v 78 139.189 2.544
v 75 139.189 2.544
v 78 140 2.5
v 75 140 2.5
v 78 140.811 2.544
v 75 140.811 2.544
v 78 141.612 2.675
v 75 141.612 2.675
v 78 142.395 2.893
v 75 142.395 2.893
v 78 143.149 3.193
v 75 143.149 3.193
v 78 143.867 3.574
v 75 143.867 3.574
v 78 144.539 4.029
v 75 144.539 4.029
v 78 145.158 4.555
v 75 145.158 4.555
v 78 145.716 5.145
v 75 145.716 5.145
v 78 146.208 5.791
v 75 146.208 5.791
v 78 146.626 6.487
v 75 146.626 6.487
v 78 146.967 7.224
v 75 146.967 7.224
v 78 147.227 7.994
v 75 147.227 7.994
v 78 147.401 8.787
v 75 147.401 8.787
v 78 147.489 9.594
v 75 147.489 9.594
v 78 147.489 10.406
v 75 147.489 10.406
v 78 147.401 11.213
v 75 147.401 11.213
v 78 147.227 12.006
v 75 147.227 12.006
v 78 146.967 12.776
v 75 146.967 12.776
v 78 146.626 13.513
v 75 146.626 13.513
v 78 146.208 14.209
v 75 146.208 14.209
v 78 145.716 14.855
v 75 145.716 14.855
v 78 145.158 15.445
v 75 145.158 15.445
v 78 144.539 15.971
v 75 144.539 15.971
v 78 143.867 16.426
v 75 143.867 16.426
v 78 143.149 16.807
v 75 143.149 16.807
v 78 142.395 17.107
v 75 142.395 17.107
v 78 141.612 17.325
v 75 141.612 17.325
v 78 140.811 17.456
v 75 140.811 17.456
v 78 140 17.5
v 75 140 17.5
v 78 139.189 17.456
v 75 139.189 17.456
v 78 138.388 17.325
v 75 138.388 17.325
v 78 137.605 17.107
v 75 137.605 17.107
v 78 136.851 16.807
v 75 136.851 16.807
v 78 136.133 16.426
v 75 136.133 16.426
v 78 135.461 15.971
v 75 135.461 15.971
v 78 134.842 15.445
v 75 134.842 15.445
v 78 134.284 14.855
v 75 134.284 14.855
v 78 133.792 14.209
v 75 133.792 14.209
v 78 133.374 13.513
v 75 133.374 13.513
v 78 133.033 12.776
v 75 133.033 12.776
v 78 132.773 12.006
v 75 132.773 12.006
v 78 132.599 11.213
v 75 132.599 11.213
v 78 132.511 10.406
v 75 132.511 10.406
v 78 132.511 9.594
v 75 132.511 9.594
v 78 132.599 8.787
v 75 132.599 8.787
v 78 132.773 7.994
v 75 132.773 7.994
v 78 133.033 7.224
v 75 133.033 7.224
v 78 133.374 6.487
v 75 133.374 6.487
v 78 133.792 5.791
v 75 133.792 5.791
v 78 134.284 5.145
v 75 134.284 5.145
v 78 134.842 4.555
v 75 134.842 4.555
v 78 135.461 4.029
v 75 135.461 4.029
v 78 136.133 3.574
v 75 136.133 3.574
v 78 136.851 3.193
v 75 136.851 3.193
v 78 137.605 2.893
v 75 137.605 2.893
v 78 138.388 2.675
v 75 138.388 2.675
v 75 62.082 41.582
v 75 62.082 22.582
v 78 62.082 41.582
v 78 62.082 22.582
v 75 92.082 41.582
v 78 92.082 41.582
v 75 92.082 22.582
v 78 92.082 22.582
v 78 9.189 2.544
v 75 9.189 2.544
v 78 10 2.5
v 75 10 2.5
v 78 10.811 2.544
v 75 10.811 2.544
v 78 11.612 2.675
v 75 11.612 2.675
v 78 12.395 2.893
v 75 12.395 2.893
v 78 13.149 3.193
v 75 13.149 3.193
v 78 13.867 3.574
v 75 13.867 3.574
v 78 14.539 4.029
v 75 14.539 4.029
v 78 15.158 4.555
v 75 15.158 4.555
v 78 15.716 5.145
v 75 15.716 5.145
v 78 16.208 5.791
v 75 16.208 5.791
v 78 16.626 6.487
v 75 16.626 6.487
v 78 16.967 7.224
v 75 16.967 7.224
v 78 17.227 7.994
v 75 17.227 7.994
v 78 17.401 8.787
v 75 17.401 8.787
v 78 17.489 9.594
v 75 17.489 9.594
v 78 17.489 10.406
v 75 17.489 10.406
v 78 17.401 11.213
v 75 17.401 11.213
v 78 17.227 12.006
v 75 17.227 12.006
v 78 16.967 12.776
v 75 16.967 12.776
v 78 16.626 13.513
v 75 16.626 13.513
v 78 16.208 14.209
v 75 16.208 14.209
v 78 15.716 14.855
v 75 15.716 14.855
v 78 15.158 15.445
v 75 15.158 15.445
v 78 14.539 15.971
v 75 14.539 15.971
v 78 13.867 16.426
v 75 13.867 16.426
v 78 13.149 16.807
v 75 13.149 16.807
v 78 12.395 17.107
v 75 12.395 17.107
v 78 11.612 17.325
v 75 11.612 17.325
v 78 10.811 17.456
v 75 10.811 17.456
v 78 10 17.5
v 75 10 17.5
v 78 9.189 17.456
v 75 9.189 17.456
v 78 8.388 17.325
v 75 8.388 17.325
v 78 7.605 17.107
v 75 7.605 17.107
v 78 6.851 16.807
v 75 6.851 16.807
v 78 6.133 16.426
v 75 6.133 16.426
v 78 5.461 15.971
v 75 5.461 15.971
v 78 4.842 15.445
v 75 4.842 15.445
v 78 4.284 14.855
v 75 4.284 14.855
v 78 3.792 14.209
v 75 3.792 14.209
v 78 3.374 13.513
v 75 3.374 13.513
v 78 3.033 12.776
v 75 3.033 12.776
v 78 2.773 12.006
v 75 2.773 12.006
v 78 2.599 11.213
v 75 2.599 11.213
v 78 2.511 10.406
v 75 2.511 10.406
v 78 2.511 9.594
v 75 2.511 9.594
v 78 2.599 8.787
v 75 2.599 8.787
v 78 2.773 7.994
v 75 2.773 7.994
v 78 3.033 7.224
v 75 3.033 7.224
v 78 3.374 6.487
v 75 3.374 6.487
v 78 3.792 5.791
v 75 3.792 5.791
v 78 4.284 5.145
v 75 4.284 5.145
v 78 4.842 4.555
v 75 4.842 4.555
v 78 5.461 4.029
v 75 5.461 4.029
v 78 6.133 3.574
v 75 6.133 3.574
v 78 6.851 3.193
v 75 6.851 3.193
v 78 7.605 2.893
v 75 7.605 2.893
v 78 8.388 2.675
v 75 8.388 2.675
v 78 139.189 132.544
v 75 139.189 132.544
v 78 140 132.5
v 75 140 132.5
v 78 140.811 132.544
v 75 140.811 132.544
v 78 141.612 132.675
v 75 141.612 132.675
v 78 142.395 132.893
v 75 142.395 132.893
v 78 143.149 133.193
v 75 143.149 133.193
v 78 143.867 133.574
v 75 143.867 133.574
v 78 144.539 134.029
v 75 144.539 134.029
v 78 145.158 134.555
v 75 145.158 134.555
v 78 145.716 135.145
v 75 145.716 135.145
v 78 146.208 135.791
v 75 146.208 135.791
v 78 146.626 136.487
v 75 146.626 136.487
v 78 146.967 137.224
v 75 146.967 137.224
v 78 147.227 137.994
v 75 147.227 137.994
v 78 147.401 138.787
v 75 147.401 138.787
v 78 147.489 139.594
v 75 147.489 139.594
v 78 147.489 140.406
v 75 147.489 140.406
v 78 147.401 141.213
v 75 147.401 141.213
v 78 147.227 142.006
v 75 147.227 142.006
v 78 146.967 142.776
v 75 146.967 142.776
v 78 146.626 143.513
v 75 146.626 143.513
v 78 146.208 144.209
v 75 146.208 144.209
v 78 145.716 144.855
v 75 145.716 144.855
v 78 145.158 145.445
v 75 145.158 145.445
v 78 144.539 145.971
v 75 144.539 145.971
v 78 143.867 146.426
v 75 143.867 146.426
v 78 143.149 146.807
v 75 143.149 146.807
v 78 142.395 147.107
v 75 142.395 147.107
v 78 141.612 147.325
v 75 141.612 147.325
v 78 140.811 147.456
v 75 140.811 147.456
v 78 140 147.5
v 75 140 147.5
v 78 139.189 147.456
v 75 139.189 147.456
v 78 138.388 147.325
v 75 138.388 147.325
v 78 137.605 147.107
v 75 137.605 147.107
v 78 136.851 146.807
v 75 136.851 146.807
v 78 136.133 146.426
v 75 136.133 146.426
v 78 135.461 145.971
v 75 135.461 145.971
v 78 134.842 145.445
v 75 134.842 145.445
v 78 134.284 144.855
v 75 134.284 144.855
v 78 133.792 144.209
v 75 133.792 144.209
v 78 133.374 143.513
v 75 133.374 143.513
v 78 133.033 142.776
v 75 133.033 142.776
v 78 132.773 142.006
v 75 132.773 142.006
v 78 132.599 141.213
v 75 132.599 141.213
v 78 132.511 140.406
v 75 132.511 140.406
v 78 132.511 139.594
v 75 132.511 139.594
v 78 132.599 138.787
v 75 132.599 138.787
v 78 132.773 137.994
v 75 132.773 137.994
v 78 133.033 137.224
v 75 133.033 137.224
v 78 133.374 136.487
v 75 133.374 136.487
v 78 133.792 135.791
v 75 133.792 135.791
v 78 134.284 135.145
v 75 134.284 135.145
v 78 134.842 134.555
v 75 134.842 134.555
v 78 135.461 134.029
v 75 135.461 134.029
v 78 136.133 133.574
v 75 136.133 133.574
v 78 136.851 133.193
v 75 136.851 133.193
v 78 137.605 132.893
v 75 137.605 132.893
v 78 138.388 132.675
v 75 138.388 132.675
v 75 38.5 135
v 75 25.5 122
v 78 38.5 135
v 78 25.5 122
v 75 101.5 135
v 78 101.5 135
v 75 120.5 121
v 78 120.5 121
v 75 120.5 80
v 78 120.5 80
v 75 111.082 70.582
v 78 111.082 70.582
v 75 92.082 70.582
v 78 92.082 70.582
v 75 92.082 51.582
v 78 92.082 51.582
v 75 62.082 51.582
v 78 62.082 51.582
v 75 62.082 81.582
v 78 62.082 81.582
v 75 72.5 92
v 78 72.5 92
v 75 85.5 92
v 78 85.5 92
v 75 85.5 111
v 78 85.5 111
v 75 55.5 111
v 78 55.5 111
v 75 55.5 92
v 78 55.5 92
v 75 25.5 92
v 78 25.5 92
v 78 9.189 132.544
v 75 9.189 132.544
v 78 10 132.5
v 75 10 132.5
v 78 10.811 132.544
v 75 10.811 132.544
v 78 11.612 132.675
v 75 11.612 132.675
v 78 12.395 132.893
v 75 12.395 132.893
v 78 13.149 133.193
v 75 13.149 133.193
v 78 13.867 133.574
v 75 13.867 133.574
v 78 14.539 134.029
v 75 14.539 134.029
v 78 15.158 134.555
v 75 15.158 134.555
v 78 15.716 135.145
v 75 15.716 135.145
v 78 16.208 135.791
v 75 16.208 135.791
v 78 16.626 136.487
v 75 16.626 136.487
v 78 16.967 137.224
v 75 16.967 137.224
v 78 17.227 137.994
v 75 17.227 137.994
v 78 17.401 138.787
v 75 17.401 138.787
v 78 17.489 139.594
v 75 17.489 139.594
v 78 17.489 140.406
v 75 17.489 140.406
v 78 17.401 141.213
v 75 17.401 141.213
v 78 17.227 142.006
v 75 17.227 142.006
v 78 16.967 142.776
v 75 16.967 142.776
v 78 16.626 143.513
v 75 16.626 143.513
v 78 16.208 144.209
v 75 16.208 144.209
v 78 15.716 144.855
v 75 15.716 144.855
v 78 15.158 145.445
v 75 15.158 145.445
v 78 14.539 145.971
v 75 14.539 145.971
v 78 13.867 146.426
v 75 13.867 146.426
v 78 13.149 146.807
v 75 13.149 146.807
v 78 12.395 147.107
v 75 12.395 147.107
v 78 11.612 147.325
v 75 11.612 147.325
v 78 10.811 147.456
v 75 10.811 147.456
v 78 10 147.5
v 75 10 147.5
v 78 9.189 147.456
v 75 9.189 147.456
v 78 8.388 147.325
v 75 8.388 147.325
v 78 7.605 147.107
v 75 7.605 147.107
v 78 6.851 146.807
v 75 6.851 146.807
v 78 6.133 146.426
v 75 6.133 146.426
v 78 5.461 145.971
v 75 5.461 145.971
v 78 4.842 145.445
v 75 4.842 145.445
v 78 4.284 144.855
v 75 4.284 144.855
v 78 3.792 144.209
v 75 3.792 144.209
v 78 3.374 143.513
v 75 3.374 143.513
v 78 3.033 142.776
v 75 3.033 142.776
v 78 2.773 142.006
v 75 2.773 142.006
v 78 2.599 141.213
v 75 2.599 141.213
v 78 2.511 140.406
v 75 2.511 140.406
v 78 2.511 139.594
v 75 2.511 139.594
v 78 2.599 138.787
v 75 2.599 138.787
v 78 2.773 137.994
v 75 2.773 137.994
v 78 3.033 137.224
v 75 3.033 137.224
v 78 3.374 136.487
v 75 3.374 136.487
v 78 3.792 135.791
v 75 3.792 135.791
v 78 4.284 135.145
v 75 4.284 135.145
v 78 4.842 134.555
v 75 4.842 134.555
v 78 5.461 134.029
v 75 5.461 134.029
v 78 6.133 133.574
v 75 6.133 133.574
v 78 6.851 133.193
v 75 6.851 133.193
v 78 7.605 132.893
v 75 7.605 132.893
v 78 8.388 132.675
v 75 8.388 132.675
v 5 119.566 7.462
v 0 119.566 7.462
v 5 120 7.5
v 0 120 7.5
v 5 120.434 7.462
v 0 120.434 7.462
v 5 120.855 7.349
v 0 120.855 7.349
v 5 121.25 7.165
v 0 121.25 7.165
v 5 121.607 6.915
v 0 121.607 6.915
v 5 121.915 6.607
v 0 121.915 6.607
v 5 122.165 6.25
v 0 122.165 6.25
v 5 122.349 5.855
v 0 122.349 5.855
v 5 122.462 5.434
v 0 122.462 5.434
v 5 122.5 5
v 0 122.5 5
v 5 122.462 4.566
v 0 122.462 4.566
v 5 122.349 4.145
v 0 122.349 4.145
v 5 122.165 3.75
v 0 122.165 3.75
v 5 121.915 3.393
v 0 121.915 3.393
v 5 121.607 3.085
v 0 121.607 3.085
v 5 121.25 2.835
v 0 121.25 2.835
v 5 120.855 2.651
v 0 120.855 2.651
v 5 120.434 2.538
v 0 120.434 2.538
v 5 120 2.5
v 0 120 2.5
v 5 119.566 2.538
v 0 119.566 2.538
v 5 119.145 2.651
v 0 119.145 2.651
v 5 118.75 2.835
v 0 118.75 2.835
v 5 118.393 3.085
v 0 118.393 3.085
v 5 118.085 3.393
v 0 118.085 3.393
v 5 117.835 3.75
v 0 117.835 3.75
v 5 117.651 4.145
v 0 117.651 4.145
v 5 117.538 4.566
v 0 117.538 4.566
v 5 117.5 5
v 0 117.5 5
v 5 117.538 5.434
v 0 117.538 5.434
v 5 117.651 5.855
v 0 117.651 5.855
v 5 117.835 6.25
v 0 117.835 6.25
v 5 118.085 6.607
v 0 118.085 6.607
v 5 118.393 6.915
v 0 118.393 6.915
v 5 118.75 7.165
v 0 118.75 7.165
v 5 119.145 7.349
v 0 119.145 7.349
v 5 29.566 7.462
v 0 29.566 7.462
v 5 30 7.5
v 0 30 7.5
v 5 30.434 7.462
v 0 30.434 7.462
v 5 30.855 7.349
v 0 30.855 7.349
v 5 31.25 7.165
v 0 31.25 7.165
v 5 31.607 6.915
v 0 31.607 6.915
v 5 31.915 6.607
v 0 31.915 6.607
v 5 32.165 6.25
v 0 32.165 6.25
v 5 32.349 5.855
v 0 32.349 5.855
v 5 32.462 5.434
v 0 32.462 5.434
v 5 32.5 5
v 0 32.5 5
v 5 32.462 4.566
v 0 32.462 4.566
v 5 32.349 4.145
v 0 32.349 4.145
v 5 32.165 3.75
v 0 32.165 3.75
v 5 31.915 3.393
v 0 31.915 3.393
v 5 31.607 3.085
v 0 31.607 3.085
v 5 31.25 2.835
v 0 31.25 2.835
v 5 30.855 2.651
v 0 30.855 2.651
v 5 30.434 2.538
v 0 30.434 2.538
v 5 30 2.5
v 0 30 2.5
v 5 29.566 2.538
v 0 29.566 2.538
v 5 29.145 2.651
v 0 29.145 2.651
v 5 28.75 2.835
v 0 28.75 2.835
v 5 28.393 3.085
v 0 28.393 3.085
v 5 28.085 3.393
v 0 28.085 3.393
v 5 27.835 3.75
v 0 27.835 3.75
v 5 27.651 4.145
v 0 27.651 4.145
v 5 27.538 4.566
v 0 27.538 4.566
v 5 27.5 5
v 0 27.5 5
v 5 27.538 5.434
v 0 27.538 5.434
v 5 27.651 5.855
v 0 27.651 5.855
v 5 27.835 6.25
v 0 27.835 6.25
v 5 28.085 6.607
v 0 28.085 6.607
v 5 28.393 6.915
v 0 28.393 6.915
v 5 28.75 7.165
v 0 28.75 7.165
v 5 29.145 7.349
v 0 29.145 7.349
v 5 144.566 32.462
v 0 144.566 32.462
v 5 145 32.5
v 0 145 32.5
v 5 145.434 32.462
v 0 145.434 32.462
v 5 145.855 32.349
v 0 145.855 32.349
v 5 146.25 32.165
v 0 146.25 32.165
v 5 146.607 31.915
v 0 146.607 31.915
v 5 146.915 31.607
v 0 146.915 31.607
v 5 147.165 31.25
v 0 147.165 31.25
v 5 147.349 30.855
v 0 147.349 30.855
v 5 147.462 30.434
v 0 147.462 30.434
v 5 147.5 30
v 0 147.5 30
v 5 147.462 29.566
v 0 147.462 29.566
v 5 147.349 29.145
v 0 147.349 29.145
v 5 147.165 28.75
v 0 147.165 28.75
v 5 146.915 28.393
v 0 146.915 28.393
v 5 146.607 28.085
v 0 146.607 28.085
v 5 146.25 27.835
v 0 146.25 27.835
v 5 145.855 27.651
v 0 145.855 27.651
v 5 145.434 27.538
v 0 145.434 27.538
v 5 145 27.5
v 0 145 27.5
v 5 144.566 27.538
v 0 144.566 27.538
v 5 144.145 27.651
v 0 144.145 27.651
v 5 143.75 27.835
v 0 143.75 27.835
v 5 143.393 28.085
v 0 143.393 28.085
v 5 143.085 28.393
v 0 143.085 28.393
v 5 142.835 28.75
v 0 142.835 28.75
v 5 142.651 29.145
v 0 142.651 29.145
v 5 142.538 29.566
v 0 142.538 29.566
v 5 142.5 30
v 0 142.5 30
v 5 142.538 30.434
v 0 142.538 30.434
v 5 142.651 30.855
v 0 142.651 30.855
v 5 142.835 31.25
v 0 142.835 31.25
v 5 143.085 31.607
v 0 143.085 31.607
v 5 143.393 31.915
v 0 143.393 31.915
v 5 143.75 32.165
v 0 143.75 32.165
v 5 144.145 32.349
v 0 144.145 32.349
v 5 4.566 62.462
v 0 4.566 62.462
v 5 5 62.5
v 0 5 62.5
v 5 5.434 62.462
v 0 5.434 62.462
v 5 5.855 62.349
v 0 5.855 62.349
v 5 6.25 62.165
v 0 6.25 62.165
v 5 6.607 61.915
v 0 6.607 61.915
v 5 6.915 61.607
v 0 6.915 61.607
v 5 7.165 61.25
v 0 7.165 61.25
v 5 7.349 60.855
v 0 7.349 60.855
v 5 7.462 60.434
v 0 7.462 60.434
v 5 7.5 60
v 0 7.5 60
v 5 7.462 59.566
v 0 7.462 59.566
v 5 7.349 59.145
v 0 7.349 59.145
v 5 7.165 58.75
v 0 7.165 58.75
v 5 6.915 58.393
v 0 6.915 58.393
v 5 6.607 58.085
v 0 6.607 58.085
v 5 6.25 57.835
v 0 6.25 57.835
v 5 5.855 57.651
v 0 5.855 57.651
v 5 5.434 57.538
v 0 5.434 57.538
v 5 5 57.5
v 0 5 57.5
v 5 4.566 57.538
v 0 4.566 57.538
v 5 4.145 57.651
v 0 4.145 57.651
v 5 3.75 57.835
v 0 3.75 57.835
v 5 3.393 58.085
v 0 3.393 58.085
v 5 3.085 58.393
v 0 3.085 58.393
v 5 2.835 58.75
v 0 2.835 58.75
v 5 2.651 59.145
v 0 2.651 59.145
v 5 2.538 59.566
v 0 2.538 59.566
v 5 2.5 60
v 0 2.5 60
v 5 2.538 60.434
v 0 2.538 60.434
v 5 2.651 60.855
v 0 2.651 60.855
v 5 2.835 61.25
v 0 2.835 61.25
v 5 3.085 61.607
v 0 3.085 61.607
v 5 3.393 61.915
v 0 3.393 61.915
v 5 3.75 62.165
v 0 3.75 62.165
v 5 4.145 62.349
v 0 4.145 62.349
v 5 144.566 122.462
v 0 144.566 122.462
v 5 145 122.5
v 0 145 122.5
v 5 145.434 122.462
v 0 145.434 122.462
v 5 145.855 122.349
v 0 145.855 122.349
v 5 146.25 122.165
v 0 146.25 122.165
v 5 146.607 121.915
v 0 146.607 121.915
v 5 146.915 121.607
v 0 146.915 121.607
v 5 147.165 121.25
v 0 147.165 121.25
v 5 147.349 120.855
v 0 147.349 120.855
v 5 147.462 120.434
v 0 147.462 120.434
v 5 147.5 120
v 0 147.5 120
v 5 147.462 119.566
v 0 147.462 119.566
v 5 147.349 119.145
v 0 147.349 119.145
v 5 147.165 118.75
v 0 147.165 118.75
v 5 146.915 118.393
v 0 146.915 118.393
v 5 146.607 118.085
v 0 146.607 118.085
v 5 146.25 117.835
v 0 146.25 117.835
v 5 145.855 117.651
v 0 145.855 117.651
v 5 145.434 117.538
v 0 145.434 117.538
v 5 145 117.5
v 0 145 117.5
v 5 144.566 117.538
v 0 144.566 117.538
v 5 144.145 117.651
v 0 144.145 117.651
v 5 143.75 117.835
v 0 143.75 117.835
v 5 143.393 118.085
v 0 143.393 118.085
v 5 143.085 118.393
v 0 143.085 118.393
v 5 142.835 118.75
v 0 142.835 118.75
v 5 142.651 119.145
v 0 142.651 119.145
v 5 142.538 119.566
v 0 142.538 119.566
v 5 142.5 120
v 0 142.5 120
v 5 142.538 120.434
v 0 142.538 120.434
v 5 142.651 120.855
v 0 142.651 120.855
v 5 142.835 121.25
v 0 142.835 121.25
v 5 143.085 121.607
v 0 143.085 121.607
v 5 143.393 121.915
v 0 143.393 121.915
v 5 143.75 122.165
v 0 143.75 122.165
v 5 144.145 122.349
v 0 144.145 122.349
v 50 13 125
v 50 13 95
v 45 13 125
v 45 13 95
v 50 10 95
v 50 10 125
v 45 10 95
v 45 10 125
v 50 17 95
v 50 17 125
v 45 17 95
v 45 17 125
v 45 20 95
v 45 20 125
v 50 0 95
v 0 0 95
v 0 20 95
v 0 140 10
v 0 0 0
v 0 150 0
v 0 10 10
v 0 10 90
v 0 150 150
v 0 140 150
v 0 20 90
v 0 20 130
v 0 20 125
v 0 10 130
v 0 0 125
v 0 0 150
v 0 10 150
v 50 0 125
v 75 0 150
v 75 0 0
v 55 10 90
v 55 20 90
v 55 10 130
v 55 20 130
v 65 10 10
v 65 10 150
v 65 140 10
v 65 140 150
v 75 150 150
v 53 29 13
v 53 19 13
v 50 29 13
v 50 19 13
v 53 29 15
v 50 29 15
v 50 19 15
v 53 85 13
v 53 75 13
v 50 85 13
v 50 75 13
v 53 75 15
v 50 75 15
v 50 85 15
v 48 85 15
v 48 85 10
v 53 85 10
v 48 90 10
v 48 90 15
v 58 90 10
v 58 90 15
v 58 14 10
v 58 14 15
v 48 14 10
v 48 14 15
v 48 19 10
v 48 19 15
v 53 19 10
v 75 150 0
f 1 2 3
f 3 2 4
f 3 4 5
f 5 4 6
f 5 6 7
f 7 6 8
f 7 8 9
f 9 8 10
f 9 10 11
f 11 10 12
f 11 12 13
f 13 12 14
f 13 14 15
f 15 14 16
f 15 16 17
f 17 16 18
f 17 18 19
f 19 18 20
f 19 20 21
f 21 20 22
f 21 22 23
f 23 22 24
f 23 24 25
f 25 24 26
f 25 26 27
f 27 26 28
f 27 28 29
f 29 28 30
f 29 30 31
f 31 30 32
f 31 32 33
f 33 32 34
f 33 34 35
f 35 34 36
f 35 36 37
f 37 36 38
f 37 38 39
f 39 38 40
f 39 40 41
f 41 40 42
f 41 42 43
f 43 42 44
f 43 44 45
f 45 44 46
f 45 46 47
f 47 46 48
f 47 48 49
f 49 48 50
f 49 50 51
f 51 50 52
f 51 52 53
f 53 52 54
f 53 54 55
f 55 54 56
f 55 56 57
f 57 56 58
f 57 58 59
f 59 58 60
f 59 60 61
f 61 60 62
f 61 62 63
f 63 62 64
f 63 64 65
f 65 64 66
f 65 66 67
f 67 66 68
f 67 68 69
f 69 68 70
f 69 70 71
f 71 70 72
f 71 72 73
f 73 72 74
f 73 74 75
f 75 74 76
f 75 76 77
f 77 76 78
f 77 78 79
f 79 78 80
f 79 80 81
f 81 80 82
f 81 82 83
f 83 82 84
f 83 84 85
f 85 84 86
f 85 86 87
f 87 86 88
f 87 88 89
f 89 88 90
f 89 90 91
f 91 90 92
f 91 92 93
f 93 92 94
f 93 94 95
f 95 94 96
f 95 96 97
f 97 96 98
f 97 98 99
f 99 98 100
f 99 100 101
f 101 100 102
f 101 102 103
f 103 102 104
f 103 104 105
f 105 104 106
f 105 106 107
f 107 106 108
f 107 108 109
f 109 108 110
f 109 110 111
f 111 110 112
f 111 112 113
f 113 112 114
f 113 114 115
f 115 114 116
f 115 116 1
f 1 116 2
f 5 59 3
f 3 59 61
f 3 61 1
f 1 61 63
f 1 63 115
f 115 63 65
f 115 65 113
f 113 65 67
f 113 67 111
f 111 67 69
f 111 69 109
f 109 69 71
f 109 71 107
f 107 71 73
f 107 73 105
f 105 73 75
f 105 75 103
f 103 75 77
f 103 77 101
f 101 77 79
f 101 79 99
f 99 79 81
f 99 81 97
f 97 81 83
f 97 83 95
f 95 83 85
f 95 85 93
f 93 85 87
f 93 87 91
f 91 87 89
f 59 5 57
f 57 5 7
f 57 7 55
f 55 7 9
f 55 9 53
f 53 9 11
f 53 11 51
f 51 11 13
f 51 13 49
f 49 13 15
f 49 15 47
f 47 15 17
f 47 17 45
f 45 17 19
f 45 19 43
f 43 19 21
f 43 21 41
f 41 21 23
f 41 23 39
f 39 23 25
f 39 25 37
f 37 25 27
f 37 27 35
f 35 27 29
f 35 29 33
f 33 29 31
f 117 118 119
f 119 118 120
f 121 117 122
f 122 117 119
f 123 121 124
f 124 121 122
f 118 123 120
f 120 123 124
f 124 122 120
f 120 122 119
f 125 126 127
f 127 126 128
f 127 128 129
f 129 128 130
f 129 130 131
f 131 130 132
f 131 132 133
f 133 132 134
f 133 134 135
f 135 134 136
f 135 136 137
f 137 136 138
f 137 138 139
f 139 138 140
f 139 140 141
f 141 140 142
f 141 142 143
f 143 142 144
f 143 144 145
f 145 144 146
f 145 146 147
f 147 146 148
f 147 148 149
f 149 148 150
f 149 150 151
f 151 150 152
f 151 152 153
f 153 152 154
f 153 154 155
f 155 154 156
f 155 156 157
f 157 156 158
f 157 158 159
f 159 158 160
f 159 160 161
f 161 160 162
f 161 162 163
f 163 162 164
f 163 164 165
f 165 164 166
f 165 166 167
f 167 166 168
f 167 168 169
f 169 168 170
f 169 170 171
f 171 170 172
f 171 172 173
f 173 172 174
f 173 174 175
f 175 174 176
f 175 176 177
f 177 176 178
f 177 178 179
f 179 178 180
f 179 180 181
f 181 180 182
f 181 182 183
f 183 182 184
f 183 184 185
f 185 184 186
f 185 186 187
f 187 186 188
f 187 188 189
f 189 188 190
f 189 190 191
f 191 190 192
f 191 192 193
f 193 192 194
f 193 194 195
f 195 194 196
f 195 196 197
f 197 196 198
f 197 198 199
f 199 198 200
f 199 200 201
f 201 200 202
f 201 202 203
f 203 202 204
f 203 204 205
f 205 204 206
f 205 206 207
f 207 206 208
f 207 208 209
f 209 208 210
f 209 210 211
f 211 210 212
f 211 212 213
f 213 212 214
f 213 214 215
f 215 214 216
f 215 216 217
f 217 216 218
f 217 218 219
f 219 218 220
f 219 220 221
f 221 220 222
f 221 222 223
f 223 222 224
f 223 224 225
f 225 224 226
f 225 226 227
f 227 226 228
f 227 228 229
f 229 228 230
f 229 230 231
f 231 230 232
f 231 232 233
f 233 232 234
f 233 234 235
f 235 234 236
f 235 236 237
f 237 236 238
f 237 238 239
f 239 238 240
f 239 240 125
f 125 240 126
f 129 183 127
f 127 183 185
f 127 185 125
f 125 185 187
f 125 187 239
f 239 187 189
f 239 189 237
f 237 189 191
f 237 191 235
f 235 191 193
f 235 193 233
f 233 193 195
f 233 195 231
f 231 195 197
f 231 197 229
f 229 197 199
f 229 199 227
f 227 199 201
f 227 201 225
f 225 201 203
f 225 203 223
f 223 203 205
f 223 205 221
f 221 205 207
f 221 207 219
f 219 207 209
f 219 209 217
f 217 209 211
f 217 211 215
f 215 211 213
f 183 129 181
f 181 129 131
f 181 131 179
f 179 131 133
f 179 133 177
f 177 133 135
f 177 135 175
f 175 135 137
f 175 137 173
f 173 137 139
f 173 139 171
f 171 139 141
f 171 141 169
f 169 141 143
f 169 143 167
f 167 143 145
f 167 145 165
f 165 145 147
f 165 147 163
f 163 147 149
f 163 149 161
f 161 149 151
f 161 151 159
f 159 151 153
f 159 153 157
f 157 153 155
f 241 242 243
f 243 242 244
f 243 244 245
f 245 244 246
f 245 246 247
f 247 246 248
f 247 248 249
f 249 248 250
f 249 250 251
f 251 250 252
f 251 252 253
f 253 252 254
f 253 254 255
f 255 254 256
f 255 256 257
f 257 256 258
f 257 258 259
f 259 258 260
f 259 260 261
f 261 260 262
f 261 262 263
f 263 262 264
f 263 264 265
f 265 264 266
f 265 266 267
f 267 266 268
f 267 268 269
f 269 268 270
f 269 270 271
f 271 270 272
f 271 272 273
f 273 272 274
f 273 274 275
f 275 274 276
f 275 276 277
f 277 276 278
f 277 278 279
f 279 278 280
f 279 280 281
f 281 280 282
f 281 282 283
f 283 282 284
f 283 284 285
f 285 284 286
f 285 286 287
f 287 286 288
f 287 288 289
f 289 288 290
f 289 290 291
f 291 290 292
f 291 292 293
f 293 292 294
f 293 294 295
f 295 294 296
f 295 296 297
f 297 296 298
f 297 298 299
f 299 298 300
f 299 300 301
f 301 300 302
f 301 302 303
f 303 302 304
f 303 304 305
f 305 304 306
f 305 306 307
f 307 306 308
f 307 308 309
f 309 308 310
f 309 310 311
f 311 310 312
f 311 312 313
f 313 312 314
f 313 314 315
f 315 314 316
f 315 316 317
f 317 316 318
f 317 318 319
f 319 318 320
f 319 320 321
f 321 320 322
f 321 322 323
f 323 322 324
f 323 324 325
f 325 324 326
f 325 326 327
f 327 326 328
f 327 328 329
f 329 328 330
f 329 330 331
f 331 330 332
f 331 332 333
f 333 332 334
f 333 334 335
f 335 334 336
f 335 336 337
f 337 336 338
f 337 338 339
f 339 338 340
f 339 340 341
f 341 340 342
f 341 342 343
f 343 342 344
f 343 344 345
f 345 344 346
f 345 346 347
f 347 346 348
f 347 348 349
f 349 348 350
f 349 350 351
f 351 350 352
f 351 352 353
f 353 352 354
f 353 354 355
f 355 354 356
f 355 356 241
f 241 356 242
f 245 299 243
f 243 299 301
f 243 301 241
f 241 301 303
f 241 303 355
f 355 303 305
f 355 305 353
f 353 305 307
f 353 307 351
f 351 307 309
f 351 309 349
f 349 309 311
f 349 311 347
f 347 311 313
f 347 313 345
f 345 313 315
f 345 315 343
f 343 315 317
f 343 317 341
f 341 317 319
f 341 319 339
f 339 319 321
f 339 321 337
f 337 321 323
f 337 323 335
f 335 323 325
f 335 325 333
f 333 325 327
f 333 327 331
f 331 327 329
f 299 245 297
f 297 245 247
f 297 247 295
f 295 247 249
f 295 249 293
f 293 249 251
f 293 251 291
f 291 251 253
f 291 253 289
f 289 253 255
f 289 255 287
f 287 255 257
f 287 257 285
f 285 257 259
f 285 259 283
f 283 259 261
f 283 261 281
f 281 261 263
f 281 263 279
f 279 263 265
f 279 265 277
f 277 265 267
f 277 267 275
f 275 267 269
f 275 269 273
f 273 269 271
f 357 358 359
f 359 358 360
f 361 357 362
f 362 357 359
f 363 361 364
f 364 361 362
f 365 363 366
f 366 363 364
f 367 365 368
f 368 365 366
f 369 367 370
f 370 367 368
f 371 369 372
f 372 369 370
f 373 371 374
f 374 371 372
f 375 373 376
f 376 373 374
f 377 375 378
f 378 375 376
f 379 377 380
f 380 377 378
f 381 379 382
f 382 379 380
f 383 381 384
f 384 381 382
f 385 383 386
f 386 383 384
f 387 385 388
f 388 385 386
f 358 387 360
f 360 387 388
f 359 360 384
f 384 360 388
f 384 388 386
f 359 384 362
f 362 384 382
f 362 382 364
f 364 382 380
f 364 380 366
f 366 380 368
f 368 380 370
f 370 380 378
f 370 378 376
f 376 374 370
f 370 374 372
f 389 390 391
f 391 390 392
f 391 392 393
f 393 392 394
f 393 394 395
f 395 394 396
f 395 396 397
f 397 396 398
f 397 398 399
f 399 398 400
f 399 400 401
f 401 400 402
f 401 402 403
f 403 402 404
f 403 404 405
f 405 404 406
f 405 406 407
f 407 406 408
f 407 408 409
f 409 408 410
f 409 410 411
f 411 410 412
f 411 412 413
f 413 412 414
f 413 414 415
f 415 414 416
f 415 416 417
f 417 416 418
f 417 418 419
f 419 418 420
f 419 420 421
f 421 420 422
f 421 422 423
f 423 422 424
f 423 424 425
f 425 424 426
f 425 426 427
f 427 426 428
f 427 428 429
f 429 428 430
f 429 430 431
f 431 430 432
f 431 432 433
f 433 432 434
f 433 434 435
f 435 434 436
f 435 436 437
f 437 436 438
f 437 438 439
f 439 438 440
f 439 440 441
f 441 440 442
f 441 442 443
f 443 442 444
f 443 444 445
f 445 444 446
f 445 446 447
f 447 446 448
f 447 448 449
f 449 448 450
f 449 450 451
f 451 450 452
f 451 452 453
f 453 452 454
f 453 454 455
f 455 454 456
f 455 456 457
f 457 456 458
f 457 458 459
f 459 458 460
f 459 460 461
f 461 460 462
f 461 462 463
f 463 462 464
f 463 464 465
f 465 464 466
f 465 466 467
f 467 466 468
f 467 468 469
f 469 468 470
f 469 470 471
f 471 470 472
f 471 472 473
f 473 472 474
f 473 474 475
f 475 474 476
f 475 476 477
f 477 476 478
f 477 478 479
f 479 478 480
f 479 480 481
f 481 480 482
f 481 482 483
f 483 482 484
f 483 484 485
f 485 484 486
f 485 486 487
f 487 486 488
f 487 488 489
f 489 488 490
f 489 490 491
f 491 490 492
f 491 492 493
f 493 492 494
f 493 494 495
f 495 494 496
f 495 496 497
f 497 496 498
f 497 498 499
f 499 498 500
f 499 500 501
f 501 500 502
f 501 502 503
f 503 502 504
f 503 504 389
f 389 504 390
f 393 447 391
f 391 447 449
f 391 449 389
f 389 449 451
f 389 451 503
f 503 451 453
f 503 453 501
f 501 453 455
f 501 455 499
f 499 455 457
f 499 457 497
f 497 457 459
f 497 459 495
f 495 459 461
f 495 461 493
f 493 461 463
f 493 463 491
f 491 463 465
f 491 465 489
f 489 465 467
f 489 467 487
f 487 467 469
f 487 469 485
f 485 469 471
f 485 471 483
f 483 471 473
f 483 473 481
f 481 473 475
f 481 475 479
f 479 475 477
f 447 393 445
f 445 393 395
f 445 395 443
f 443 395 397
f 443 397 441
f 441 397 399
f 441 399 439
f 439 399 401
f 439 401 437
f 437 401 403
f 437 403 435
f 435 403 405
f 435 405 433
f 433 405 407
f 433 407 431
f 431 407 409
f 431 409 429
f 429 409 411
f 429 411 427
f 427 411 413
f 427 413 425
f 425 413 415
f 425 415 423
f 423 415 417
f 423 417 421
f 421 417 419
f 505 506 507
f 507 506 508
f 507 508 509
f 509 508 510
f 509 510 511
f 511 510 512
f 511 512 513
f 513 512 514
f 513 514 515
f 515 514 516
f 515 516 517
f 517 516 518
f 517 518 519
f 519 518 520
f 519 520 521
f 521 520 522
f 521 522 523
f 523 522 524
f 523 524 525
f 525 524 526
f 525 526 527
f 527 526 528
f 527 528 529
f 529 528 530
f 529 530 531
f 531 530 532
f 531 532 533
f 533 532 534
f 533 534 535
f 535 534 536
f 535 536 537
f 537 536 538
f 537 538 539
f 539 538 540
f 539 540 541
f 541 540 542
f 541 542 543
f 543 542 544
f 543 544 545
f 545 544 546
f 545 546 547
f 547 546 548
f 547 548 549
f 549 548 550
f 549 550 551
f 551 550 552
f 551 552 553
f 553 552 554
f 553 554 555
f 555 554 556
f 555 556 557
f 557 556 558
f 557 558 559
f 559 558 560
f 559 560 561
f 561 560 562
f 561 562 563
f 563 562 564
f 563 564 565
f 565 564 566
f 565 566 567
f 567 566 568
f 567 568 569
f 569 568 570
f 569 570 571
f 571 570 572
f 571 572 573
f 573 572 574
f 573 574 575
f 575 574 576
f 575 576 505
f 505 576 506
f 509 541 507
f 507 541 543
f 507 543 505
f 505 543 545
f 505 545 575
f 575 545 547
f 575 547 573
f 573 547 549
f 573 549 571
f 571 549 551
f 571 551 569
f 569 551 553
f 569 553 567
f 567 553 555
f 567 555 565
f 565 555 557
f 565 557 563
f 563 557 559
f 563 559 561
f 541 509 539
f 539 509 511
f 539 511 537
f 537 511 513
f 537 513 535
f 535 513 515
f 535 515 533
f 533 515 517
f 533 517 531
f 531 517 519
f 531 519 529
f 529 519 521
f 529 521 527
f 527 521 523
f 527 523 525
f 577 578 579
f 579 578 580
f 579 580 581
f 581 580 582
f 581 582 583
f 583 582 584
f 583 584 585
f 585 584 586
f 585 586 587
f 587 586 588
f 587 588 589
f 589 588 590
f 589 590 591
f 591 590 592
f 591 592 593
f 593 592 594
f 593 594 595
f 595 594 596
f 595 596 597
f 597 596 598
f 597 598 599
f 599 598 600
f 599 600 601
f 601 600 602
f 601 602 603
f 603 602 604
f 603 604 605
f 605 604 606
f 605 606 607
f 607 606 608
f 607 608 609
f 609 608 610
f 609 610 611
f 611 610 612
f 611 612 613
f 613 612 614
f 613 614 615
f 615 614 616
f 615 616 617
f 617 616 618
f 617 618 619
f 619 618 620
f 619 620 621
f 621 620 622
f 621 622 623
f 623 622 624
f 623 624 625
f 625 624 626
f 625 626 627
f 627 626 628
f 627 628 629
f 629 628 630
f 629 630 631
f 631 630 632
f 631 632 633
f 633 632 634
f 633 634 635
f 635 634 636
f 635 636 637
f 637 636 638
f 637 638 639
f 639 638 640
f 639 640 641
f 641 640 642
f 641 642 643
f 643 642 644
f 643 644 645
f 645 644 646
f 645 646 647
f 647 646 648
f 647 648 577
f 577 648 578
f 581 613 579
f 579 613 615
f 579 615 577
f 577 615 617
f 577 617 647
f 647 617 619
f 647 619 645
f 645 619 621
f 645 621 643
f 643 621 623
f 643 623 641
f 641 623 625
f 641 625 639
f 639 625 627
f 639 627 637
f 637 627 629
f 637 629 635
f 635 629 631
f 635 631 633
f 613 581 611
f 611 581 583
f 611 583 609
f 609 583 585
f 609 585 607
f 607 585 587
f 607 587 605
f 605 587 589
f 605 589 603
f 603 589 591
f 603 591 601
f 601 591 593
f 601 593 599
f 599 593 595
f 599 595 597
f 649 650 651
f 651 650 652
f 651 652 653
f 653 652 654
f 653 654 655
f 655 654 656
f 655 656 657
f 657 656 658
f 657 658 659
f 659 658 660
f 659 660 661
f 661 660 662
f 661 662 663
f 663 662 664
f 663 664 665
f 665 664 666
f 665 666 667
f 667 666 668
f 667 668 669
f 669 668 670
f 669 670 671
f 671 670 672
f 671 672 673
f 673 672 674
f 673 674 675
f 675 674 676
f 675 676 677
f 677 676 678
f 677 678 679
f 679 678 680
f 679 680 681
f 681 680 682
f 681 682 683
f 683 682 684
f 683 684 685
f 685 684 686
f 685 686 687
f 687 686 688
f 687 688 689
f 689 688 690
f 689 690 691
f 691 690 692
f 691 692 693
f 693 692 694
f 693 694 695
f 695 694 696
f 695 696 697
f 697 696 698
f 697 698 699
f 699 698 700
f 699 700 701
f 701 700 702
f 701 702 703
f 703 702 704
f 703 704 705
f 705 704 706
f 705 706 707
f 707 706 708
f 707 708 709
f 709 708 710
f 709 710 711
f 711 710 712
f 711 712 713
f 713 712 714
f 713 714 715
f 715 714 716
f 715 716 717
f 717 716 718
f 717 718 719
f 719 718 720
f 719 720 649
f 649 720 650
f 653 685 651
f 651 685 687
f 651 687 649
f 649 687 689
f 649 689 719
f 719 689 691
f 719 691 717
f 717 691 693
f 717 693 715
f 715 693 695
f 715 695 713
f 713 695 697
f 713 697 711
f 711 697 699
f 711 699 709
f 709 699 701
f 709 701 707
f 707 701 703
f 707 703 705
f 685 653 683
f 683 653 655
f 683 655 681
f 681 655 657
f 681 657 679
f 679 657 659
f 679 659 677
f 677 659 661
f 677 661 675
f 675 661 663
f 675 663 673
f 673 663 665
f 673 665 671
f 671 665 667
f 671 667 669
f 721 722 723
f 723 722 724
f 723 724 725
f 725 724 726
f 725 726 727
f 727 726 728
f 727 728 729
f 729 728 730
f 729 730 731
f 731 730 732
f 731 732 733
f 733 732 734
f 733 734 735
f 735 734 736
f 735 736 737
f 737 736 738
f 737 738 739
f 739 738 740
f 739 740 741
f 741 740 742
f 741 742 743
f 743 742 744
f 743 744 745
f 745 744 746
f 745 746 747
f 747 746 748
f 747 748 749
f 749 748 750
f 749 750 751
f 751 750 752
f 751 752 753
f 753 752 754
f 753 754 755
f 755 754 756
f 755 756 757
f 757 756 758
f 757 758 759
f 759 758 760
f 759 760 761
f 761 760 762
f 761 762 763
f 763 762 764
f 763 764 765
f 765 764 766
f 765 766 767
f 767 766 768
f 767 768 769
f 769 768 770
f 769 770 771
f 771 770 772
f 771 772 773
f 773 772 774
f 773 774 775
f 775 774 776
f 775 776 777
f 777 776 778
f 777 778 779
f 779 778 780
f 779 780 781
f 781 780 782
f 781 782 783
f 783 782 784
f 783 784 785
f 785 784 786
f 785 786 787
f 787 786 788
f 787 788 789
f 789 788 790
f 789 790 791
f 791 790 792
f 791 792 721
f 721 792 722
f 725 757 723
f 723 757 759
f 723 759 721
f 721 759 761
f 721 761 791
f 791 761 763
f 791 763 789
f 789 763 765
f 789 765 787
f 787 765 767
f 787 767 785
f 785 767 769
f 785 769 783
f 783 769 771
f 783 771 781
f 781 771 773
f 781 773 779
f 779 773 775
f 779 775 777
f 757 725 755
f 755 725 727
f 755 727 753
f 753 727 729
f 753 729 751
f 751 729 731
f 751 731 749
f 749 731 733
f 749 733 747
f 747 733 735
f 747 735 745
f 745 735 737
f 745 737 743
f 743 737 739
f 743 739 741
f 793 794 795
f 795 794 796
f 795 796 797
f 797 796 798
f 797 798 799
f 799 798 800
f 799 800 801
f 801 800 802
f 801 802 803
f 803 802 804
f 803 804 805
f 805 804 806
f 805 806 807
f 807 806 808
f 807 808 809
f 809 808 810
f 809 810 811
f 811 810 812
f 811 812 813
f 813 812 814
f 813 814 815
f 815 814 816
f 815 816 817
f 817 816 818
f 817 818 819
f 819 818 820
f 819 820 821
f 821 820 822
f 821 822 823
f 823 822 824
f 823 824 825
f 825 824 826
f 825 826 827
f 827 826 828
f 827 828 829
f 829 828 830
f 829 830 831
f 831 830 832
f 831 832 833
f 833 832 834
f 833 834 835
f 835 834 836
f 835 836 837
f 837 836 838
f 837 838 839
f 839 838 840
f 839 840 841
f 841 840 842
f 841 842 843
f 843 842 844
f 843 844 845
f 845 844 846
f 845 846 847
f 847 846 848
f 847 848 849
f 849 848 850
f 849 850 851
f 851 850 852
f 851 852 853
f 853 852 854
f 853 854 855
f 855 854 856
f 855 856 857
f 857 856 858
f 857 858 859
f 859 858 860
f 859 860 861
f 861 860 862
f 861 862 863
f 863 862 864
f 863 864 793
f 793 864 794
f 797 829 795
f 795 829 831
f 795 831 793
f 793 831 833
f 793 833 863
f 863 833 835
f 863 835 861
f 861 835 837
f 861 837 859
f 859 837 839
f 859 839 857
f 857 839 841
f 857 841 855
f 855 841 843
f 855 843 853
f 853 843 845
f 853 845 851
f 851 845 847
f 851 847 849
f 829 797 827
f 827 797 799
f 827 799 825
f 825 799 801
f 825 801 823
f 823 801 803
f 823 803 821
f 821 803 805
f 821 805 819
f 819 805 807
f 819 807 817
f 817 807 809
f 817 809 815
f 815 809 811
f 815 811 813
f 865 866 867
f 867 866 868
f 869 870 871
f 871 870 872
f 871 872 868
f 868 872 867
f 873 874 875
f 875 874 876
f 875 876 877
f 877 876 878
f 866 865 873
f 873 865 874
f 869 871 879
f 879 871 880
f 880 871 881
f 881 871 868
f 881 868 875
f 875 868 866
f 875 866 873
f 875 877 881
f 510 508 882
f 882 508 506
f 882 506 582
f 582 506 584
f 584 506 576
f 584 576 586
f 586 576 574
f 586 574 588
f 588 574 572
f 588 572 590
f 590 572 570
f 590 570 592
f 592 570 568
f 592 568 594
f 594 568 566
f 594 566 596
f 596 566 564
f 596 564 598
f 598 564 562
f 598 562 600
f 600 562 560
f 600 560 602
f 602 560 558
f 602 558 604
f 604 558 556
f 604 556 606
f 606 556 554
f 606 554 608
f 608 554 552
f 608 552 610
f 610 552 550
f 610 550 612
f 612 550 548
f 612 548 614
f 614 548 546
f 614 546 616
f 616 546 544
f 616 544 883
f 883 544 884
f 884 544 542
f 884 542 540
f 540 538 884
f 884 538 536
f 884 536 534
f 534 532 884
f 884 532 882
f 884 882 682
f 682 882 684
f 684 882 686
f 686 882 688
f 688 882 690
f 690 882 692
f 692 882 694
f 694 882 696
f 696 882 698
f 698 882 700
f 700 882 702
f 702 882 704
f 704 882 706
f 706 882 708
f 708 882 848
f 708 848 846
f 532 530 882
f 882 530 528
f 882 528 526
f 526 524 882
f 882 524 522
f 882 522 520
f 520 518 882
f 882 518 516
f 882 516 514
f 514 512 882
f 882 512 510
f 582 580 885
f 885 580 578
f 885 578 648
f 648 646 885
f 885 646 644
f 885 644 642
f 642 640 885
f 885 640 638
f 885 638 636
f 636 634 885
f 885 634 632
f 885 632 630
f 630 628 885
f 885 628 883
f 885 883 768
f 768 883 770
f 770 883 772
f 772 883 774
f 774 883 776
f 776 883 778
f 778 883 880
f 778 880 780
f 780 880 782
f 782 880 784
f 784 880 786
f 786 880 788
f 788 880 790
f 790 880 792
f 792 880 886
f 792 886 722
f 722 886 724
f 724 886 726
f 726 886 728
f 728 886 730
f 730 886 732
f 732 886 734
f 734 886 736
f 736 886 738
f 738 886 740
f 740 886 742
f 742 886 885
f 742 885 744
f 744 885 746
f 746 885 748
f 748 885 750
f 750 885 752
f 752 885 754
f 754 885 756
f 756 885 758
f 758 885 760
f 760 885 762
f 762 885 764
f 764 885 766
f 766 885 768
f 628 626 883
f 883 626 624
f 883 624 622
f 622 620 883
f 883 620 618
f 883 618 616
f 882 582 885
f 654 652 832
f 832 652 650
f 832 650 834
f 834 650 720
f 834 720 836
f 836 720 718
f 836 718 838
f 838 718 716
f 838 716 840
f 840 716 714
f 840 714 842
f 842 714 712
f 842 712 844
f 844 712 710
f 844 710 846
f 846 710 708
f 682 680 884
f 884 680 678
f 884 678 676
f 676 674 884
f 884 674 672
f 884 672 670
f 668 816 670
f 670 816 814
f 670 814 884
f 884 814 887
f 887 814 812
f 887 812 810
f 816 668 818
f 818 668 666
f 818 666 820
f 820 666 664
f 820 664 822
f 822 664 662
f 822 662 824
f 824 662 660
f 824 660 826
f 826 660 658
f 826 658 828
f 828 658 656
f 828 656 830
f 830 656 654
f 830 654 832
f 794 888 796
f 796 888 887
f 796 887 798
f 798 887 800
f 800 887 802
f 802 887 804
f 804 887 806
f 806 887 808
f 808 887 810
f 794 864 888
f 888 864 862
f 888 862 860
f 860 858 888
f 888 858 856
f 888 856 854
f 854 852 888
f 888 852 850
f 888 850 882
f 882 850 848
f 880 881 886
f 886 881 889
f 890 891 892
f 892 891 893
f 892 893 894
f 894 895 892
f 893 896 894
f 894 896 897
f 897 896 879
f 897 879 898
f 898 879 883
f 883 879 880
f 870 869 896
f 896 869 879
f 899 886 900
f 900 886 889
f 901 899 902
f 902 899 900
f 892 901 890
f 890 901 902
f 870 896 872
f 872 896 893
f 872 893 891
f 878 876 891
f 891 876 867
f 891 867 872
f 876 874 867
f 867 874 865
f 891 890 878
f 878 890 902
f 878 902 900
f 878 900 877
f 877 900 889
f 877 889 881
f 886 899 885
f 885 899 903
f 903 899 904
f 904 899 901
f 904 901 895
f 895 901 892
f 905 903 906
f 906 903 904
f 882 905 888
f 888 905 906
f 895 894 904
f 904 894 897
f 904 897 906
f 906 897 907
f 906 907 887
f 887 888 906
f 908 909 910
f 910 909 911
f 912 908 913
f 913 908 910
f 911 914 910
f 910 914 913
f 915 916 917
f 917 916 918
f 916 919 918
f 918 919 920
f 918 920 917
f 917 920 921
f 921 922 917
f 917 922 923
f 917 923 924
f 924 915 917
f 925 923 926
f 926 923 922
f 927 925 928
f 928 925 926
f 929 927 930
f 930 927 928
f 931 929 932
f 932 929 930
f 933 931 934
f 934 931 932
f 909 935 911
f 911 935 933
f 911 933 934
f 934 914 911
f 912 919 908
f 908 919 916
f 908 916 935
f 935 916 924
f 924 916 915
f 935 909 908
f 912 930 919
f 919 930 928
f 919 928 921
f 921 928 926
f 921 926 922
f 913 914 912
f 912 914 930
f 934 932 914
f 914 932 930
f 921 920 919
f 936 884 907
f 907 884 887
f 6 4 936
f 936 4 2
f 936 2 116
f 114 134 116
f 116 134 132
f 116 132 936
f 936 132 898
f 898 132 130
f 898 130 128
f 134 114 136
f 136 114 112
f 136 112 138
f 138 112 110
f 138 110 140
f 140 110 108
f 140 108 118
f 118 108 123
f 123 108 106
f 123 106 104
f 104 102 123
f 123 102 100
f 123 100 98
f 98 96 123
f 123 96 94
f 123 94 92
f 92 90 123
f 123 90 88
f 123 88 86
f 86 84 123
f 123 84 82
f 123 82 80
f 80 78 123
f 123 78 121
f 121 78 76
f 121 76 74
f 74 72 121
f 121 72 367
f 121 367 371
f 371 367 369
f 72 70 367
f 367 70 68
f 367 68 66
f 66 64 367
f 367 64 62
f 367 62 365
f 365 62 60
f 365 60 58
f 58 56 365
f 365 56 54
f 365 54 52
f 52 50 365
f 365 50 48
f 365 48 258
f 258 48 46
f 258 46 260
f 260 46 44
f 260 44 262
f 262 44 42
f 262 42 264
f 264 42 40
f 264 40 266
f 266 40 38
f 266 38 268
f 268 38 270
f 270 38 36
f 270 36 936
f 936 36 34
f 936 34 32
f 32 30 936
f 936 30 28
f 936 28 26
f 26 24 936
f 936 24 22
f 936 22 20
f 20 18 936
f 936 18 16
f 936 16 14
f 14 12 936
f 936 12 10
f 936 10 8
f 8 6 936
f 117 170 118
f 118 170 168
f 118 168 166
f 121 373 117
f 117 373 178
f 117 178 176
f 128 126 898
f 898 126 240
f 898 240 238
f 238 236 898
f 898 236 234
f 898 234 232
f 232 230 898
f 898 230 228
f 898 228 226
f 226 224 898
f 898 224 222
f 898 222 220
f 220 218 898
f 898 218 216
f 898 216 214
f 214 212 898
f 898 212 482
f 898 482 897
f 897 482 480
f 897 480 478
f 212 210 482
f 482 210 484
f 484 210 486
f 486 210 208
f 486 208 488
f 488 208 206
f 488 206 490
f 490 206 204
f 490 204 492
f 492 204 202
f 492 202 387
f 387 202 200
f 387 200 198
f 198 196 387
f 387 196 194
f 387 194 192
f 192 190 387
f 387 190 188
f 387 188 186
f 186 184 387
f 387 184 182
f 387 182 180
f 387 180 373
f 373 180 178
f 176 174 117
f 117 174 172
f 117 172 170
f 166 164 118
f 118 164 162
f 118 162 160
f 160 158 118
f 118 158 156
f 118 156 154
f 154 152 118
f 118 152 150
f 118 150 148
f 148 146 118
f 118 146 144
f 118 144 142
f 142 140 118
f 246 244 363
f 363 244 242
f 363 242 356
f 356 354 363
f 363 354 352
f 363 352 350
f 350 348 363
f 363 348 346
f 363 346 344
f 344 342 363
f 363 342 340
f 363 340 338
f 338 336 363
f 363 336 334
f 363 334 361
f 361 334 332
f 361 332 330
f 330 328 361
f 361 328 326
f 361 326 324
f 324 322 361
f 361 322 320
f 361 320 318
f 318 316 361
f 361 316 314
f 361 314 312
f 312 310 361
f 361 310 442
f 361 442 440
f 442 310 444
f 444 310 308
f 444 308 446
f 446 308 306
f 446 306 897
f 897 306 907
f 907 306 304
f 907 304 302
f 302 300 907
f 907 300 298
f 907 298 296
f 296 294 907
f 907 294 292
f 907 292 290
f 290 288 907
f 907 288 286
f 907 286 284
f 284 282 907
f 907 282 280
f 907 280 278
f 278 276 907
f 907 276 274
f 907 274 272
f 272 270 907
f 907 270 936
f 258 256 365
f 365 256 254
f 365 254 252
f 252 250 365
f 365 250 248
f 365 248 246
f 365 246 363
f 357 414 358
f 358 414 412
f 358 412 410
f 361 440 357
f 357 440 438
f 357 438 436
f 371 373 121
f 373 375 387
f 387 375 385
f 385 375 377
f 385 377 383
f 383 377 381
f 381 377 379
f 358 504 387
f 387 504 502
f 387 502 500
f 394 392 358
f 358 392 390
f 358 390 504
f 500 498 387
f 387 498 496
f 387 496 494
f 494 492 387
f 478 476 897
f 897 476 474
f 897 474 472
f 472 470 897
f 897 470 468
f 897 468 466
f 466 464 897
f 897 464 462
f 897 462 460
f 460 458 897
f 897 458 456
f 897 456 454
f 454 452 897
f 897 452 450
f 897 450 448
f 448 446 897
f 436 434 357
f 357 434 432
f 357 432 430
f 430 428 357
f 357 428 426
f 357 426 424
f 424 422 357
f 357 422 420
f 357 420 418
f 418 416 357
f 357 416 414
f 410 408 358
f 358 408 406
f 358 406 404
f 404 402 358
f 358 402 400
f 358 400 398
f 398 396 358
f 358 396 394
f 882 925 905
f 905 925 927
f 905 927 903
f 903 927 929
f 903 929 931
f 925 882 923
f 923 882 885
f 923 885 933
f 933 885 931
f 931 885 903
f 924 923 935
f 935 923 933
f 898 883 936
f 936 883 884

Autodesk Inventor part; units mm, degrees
ref_plane "YZ Plane" through (0, 0, 0) normal (1, 0, 0) x (0, 1, 0)
ref_plane "XZ Plane" through (0, 0, 0) normal (0, 1, 0) x (-1, 0, 0)
ref_plane "XY Plane" through (0, 0, 0) normal (0, 0, 1) x (1, 0, 0)
sketch "Sketch1" plane through (0, 0, 0) normal (0, 0, 1) x (1, 0, 0)
  line L0 (0, 0) -> (75, 0)
  line L1 (75, 0) -> (75, 150)
  line L2 (75, 150) -> (0, 150)
  line L3 (0, 150) -> (0, 0)
  dimension "d0" = 75
  dimension "d1" = 150
extrude "Extrusion1" add sketch "Sketch1" along normal blind 10
sketch "Sketch2" plane through (0, 0, 10) normal (0, 0, 1) x (1, 0, 0)
  line L0 (48, 85) -> (53, 85)
  line L1 (53, 85) -> (53, 19)
  line L2 (53, 19) -> (48, 19)
  line L3 (48, 19) -> (48, 14)
  line L4 (48, 14) -> (58, 14)
  line L5 (58, 14) -> (58, 90)
  line L6 (58, 90) -> (48, 90)
  line L7 (75, 150) -> (0, 150) projected
  line L8 (0, 150) -> (0, 0) projected
  line L9 (48, 85) -> (48, 90)
  dimension "d4" = 10
  dimension "d5" = 76
  dimension "d6" = 66
  dimension "d8" = 60
  dimension "d9" = 5
  dimension "d10" = 10
  dimension "d11" = 53
  dimension "d12" = 5
  dimension "d13" = 5
extrude "Extrusion2" add sketch "Sketch2" along normal blind 5
sketch "Sketch3" plane through (53, 19, 10) normal (-1, 0, 0) x (0, 0, 1)
  line L0 (5, 66) -> (5, 0) projected
  line L1 (5, 66) -> (3, 66)
  line L2 (3, 66) -> (3, 56)
  line L3 (3, 56) -> (5, 56)
  line L4 (5, 56) -> (5, 66)
  line L5 (5, 0) -> (5, -5) projected
  line L6 (5, 0) -> (3, 0)
  line L7 (3, 0) -> (3, 10)
  line L8 (3, 10) -> (5, 10)
  line L9 (5, 10) -> (5, 0)
  point P0 (-10, -19)
  point P1 (5, 10)
  point P2 (5, 56)
  dimension "d16" = 2
  dimension "d17" = 10
  dimension "d18" = 10
  dimension "d19" = 2
extrude "Extrusion3" add sketch "Sketch3" along normal blind 3
sketch "Sketch4" plane through (0, 0, 10) normal (0, 0, 1) x (1, 0, 0)
  line L0 (0, 150) -> (0, 0) projected
  line L1 (0, 10) -> (65, 10)
  line L2 (65, 10) -> (65, 140)
  line L3 (65, 140) -> (0, 140)
  line L4 (75, 150) -> (0, 150) projected
  line L5 (75, 0) -> (75, 150) projected
  line L6 (0, 0) -> (75, 0) projected
  point P0 (0, 140)
  dimension "d22" = 10
  dimension "d24" = 10
  dimension "d25" = 10
extrude "Extrusion4" add sketch "Sketch4" along normal blind 140 contours L4 L5 L6 L0 L1 L2 L3
sketch "Sketch5" plane through (0, 10, 10) normal (0, 1, 0) x (1, 0, 0)
  line L0 (0, 10) -> (0, -140) projected
  line L1 (0, -115) -> (50, -115)
  line L2 (50, -115) -> (50, -85)
  line L3 (50, -85) -> (0, -85)
  line L4 (0, -115) -> (0, -120)
  line L5 (0, -120) -> (55, -120)
  line L6 (55, -120) -> (55, -80)
  line L7 (55, -80) -> (0, -80)
  line L8 (0, -85) -> (0, -80)
  line L9 (0, -140) -> (75, -140) projected
  dimension "d28" = 50
  dimension "d29" = 30
  dimension "d30" = 5
  dimension "d31" = 55
  dimension "d32" = 40
  dimension "d37" = 20
extrude "Extrusion5" add sketch "Sketch5" along normal blind 10 contours L7 L6 L5 L0 L1 L2 L3
sketch "Sketch6" plane through (0, 10, 95) normal (0, 1, 0) x (1, 0, 0)
  line L0 (50, -30) -> (50, 0) projected
  line L1 (0, 0) -> (0, -30) projected
  line L2 (50, -30) -> (0, -30)
  line L3 (0, -30) -> (0, 0)
  line L4 (0, 0) -> (50, 0)
  line L5 (50, 0) -> (50, -30)
  point P0 (0, 95)
  point P1 (0, -30)
extrude "Extrusion6" cut sketch "Sketch6" against normal blind 10
sketch "Sketch7" plane through (50, 0, 125) normal (-1, 0, 0) x (0, 0, 1)
  line L0 (-30, 0) -> (-30, 20) projected
  line L1 (0, 20) -> (0, 0) projected
  line L2 (-30, 20) -> (0, 20)
  line L3 (0, 20) -> (0, 17)
  line L4 (0, 17) -> (-30, 17)
  line L5 (-30, 17) -> (-30, 20)
  line L6 (0, 10) -> (-30, 10)
  line L7 (-30, 10) -> (-30, 13)
  line L8 (-30, 13) -> (0, 13)
  line L9 (0, 13) -> (0, 10)
  point P0 (-125, 0)
  point P1 (0, 13)
  point P2 (-30, 13)
  point P3 (0, 20)
  dimension "d38" = 3
  dimension "d39" = 3
extrude "Extrusion7" add sketch "Sketch7" along normal blind 5 contours L0 L8 L1 L6 | L0 L2 L1 L4
sketch "Sketch8" plane through (0, 0, 0) normal (-1, 0, 0) x (0, 0, 1)
  circle A0 centre (5, 120) radius 2.5
  circle A1 centre (5, 30) radius 2.5
  circle A2 centre (60, 5) radius 2.5
  circle A3 centre (120, 145) radius 2.5
  circle A4 centre (30, 145) radius 2.5
  line L0 (0, 0) -> (95, 0) projected
  line L1 (0, 150) -> (0, 0) projected
  line L2 (0, 150) -> (150, 150) projected
  line L3 (10, 140) -> (150, 140) projected
  line L4 (150, 150) -> (150, 140) projected
  dimension "d42" = 5
  dimension "d43" = 5
  dimension "d44" = 5
  dimension "d45" = 5
  dimension "d46" = 5
  dimension "d47" = 5
  dimension "d48" = 60
  dimension "d49" = 5
  dimension "d50" = 30
  dimension "d51" = 5
  dimension "d52" = 30
  dimension "d53" = 30
  dimension "d54" = 5
  dimension "d55" = 5
  dimension "d56" = 30
extrude "Extrusion8" cut sketch "Sketch8" against normal blind 5
sketch "Sketch9" plane through (75, 0, 0) normal (1, 0, 0) x (0, 0, -1)
  line L0 (-92, 25.5) -> (-92, 55.5)
  line L1 (-92, 55.5) -> (-111, 55.5)
  line L2 (-111, 55.5) -> (-111, 85.5)
  line L3 (-111, 85.5) -> (-92, 85.5)
  line L4 (-92, 85.5) -> (-92, 72.5)
  line L5 (-92, 72.5) -> (-81.582, 62.082)
  line L6 (-81.582, 62.082) -> (-51.582, 62.082)
  line L7 (-51.582, 62.082) -> (-51.582, 92.082)
  line L8 (-51.582, 92.082) -> (-70.582, 92.082)
  line L9 (-70.582, 92.082) -> (-70.582, 111.082)
  line L10 (-70.582, 111.082) -> (-80, 120.5)
  line L11 (-80, 120.5) -> (-121, 120.5)
  line L12 (-135, 38.5) -> (-122, 25.5)
  line L13 (-122, 25.5) -> (-92, 25.5)
  line L14 (-41.582, 62.082) -> (-22.582, 62.082)
  line L15 (-22.582, 62.082) -> (-22.582, 92.082)
  line L16 (-22.582, 92.082) -> (-41.582, 92.082)
  line L17 (-41.582, 92.082) -> (-41.582, 62.082)
  line L18 (-150, 0) -> (-150, 150) projected
  line L19 (0, 150) -> (-150, 150) projected
  line L20 (-135, 38.5) -> (-135, 101.5)
  line L21 (-135, 101.5) -> (-121, 120.5)
  line L22 (-10, 10) -> (-150, 10) projected
  circle A0 centre (-140, 10) radius 7.5
  line L23 (-10, 140) -> (-150, 140) projected
  circle A1 centre (-140, 140) radius 7.5
  line L24 (-10, 10) -> (-90, 10) projected
  circle A2 centre (-10, 10) radius 7.5
  line L25 (-10, 140) -> (-10, 10) projected
  circle A3 centre (-10, 140) radius 7.5
  line L26 (0, 0) -> (0, 150) projected
  point P0 (-100.5, 120.5)
  point P1 (-51.582, 77.082)
  point P2 (-135, 70)
  dimension "d59" = 30
  dimension "d60" = 19
  dimension "d61" = 30
  dimension "d62" = 19
  dimension "d63" = 13
  dimension "d64" = 30
  dimension "d65" = 30
  dimension "d66" = 19
  dimension "d67" = 19
  dimension "d68" = 41
  dimension "d69" = 30
  dimension "d76" = 13
  dimension "d80" = 19
  dimension "d81" = 10
  dimension "d85" = 95
  dimension "d86" = 63
  dimension "d87" = 80
  dimension "d88" = 15
  dimension "d89" = 15
  dimension "d90" = 15
  dimension "d91" = 15
  dimension "d92" = 15
  dimension "d93" = 10
  dimension "d94" = 10
  dimension "d95" = 10
extrude "Extrusion9" add sketch "Sketch9" along normal blind 3 contours L13 L12 L20 L21 L11 L10 L9 L8 L7 L6 L5 L4 L3 L2 L1 L0 | L17 L16 L15 L14 | A0 L22 | L22 A0 | A1 L23 | L23 A1 | A3 L25 L23 | L23 L25 A3 | A2 L25 L22 | L22 L25 A2
properties part number "vraagblok2"
